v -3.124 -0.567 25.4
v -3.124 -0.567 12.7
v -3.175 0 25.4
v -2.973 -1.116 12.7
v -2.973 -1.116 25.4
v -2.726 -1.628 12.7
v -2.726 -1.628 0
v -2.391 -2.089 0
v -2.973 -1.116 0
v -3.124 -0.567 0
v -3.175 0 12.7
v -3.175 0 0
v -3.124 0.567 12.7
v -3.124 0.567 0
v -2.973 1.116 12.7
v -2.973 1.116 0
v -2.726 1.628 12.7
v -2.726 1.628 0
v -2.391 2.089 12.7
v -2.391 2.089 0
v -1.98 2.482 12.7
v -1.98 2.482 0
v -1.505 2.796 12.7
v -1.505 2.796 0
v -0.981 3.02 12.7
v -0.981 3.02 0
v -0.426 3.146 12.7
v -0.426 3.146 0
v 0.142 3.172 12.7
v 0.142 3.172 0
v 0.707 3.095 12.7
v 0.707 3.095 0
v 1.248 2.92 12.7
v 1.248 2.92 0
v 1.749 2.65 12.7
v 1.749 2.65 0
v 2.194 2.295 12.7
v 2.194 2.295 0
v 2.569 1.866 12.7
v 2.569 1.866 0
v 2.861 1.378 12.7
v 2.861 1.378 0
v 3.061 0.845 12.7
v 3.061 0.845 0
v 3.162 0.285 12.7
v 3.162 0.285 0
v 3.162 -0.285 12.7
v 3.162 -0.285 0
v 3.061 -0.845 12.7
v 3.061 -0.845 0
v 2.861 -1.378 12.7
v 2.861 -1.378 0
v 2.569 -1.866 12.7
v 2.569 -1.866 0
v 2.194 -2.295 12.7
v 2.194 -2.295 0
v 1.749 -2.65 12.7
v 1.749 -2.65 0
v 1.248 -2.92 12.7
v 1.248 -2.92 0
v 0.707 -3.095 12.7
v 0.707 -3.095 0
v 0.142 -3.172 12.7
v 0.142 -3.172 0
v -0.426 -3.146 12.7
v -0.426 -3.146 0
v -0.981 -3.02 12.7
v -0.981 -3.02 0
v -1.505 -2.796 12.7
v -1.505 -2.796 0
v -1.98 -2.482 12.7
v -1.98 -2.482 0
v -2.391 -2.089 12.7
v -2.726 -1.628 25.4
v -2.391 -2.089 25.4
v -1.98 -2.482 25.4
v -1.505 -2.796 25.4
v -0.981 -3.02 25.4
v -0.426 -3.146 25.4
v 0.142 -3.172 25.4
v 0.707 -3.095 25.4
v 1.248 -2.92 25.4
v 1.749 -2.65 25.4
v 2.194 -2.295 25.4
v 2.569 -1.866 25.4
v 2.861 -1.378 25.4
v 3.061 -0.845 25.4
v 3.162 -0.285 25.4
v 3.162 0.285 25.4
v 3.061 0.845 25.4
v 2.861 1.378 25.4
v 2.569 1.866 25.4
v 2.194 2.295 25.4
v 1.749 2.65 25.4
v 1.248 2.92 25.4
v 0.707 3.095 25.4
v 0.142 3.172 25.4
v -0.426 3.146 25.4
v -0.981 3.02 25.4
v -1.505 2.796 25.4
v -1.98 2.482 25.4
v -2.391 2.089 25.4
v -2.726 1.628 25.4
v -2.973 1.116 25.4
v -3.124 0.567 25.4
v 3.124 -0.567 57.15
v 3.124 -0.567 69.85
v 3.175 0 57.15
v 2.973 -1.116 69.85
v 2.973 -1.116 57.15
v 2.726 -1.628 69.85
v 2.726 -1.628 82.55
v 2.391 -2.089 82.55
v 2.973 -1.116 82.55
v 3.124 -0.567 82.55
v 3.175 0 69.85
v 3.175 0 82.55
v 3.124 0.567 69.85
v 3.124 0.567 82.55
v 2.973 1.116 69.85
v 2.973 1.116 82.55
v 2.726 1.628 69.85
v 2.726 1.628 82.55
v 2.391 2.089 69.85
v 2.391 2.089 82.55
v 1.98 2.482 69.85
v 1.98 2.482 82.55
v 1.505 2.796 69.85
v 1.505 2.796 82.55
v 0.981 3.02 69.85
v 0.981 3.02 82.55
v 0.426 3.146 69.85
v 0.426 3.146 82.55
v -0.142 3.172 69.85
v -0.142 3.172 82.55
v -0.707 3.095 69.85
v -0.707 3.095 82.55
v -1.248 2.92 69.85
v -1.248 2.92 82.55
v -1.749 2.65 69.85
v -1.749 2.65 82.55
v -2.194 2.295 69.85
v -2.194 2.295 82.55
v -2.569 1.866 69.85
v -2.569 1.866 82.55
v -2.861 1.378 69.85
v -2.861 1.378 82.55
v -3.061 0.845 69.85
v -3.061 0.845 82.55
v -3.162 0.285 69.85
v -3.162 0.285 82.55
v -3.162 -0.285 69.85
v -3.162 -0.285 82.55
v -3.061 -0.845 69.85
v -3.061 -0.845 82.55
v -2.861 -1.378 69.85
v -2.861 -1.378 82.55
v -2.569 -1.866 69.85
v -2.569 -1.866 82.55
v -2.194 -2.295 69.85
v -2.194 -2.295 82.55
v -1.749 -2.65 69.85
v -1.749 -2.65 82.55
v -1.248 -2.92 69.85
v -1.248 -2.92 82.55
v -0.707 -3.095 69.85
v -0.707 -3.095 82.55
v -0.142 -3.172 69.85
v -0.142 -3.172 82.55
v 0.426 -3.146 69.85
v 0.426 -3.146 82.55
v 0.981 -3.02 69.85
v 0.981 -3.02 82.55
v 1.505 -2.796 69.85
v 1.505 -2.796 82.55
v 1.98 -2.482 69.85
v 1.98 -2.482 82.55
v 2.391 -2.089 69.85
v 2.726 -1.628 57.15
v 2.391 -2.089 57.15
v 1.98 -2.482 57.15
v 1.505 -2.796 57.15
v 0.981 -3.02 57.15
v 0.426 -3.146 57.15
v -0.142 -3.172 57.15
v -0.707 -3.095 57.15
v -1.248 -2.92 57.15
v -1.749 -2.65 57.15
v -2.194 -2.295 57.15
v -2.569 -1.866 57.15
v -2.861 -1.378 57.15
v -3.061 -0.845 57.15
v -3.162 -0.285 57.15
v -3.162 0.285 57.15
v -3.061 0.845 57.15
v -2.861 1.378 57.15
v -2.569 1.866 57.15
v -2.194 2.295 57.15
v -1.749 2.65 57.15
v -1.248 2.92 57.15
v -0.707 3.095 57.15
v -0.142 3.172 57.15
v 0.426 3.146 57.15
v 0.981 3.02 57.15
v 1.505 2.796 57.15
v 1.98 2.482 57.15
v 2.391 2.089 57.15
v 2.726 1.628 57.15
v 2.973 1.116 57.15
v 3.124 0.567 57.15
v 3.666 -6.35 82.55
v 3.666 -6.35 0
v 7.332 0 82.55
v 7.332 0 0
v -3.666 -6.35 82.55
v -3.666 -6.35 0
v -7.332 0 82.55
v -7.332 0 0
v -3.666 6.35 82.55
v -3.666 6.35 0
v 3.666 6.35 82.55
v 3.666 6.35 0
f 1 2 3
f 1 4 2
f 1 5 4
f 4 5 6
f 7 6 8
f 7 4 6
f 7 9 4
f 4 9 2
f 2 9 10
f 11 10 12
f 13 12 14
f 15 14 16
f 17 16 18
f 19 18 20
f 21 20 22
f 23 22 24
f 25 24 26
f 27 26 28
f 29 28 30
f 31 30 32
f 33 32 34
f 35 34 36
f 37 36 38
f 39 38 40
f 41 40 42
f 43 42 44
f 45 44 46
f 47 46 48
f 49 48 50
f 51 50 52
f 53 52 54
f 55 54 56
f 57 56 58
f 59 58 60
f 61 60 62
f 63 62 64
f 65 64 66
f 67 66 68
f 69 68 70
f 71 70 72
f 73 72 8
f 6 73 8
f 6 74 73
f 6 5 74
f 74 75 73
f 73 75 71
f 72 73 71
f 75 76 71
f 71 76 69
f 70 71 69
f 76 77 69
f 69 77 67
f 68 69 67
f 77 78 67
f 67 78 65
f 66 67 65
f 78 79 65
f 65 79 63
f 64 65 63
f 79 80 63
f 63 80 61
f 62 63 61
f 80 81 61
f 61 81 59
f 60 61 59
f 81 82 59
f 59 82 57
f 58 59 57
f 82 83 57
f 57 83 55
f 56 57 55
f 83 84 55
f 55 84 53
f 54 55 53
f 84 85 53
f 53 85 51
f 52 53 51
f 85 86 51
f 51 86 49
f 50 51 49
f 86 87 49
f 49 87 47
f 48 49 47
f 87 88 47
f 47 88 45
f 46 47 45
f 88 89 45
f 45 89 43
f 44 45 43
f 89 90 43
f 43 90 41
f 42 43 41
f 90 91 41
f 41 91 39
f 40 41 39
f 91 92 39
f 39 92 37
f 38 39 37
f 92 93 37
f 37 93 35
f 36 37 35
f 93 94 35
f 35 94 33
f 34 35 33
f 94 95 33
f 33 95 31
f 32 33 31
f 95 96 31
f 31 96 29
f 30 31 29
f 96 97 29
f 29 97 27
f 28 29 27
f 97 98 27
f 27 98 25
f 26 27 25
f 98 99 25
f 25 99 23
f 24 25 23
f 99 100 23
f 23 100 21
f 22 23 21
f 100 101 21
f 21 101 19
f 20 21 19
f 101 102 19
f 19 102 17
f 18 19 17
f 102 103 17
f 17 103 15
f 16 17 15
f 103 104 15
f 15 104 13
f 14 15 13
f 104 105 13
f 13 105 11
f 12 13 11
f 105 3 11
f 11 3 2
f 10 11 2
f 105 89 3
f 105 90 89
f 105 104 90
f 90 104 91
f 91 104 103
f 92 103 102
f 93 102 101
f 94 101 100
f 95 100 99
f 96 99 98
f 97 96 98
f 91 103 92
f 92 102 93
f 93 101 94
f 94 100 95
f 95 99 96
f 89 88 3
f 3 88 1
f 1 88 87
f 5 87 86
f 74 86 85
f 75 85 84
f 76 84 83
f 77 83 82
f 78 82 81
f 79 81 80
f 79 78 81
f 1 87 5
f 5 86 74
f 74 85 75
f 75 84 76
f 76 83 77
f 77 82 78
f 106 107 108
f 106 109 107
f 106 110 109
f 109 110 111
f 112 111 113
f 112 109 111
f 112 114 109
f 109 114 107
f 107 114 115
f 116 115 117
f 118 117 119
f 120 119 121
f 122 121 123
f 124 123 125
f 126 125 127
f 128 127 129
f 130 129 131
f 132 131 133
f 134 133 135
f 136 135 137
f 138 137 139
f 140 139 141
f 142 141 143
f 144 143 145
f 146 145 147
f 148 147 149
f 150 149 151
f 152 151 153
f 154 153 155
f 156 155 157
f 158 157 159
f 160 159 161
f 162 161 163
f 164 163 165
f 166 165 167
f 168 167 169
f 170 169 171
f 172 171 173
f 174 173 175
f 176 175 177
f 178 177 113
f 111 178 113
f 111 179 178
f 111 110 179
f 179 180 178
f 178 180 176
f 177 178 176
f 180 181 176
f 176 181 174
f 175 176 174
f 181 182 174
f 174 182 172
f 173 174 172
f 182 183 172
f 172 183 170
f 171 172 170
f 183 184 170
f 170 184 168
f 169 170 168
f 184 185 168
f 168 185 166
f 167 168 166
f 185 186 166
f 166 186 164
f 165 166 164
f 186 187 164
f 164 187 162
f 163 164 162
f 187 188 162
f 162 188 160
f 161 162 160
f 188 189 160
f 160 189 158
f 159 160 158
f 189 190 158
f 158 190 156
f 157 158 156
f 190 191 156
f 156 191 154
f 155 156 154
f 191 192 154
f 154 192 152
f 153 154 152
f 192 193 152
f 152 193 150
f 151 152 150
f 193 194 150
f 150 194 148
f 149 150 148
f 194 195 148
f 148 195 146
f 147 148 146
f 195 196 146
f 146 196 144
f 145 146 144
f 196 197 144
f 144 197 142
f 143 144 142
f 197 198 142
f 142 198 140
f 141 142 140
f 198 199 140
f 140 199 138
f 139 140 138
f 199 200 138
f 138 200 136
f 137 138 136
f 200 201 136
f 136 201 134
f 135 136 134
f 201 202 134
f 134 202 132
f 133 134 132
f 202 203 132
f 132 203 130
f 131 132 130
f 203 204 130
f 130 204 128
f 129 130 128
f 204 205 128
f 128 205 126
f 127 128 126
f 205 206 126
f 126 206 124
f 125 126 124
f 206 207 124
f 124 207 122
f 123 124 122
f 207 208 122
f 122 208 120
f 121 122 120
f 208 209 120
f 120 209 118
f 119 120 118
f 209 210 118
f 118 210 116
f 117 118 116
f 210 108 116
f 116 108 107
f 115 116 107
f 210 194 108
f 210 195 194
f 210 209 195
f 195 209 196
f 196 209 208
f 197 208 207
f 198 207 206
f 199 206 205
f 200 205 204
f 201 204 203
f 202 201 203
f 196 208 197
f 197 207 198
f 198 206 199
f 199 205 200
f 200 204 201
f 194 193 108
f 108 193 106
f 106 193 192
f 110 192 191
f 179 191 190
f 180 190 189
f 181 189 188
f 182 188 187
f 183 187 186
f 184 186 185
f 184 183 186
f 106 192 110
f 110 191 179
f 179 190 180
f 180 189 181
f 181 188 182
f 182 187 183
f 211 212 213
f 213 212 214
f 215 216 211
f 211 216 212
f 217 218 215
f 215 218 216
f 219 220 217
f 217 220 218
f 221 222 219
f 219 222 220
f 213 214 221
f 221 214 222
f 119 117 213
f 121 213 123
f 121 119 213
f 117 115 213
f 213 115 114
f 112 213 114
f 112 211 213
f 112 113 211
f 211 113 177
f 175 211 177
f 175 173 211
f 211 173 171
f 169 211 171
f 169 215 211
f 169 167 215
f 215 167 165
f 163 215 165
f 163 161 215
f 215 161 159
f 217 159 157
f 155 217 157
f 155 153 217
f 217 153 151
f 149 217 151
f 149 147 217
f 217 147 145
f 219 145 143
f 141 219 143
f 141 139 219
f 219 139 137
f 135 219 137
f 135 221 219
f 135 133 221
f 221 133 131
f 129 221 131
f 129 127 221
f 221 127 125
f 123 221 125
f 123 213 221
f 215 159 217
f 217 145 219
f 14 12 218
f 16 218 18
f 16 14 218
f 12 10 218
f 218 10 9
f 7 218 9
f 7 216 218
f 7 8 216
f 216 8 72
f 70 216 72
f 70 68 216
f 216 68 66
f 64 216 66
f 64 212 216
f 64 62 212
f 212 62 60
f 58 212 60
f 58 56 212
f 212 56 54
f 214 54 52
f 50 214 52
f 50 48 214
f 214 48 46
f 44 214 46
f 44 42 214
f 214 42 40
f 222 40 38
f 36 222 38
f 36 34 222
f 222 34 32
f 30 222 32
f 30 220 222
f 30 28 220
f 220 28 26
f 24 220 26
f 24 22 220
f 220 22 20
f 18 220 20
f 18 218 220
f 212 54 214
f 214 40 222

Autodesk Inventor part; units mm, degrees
ref_plane "YZ Plane" through (0, 0, 0) normal (1, 0, 0) x (0, 1, 0)
ref_plane "XZ Plane" through (0, 0, 0) normal (0, 1, 0) x (-1, 0, 0)
ref_plane "XY Plane" through (0, 0, 0) normal (0, 0, 1) x (1, 0, 0)
sketch "Sketch1" plane through (0, 0, 0) normal (0, 0, 1) x (1, 0, 0)
  line L0 (3.6662, 6.35) -> (7.3323, 0)
  line L1 (7.3323, 0) -> (3.6662, -6.35)
  line L2 (3.6662, -6.35) -> (-3.6662, -6.35)
  line L3 (-3.6662, -6.35) -> (-7.3323, 0)
  line L4 (-7.3323, 0) -> (-3.6662, 6.35)
  line L5 (-3.6662, 6.35) -> (3.6662, 6.35)
  point P0 (0, 0)
  point P1 (0, 0)
  dimension "d0" = 12.7
extrude "Extrusion1" add sketch "Sketch1" along normal blind 82.55
sketch "Sketch3" plane through (0, 0, 82.55) normal (0, 0, 1) x (1, 0, 0)
  circle A0 centre (0, 0) radius 3.175
  dimension "d4" = 6.35
extrude "Extrusion2" cut sketch "Sketch3" against normal blind 25.4
sketch "Sketch4" plane through (0, 0, 0) normal (0, 0, -1) x (-1, 0, 0)
  circle A0 centre (0, 0) radius 3.175
  dimension "d7" = 6.35
extrude "Extrusion3" cut sketch "Sketch4" against normal blind 25.4
properties part number "WheelAxle" material "Aluminum-6061"
